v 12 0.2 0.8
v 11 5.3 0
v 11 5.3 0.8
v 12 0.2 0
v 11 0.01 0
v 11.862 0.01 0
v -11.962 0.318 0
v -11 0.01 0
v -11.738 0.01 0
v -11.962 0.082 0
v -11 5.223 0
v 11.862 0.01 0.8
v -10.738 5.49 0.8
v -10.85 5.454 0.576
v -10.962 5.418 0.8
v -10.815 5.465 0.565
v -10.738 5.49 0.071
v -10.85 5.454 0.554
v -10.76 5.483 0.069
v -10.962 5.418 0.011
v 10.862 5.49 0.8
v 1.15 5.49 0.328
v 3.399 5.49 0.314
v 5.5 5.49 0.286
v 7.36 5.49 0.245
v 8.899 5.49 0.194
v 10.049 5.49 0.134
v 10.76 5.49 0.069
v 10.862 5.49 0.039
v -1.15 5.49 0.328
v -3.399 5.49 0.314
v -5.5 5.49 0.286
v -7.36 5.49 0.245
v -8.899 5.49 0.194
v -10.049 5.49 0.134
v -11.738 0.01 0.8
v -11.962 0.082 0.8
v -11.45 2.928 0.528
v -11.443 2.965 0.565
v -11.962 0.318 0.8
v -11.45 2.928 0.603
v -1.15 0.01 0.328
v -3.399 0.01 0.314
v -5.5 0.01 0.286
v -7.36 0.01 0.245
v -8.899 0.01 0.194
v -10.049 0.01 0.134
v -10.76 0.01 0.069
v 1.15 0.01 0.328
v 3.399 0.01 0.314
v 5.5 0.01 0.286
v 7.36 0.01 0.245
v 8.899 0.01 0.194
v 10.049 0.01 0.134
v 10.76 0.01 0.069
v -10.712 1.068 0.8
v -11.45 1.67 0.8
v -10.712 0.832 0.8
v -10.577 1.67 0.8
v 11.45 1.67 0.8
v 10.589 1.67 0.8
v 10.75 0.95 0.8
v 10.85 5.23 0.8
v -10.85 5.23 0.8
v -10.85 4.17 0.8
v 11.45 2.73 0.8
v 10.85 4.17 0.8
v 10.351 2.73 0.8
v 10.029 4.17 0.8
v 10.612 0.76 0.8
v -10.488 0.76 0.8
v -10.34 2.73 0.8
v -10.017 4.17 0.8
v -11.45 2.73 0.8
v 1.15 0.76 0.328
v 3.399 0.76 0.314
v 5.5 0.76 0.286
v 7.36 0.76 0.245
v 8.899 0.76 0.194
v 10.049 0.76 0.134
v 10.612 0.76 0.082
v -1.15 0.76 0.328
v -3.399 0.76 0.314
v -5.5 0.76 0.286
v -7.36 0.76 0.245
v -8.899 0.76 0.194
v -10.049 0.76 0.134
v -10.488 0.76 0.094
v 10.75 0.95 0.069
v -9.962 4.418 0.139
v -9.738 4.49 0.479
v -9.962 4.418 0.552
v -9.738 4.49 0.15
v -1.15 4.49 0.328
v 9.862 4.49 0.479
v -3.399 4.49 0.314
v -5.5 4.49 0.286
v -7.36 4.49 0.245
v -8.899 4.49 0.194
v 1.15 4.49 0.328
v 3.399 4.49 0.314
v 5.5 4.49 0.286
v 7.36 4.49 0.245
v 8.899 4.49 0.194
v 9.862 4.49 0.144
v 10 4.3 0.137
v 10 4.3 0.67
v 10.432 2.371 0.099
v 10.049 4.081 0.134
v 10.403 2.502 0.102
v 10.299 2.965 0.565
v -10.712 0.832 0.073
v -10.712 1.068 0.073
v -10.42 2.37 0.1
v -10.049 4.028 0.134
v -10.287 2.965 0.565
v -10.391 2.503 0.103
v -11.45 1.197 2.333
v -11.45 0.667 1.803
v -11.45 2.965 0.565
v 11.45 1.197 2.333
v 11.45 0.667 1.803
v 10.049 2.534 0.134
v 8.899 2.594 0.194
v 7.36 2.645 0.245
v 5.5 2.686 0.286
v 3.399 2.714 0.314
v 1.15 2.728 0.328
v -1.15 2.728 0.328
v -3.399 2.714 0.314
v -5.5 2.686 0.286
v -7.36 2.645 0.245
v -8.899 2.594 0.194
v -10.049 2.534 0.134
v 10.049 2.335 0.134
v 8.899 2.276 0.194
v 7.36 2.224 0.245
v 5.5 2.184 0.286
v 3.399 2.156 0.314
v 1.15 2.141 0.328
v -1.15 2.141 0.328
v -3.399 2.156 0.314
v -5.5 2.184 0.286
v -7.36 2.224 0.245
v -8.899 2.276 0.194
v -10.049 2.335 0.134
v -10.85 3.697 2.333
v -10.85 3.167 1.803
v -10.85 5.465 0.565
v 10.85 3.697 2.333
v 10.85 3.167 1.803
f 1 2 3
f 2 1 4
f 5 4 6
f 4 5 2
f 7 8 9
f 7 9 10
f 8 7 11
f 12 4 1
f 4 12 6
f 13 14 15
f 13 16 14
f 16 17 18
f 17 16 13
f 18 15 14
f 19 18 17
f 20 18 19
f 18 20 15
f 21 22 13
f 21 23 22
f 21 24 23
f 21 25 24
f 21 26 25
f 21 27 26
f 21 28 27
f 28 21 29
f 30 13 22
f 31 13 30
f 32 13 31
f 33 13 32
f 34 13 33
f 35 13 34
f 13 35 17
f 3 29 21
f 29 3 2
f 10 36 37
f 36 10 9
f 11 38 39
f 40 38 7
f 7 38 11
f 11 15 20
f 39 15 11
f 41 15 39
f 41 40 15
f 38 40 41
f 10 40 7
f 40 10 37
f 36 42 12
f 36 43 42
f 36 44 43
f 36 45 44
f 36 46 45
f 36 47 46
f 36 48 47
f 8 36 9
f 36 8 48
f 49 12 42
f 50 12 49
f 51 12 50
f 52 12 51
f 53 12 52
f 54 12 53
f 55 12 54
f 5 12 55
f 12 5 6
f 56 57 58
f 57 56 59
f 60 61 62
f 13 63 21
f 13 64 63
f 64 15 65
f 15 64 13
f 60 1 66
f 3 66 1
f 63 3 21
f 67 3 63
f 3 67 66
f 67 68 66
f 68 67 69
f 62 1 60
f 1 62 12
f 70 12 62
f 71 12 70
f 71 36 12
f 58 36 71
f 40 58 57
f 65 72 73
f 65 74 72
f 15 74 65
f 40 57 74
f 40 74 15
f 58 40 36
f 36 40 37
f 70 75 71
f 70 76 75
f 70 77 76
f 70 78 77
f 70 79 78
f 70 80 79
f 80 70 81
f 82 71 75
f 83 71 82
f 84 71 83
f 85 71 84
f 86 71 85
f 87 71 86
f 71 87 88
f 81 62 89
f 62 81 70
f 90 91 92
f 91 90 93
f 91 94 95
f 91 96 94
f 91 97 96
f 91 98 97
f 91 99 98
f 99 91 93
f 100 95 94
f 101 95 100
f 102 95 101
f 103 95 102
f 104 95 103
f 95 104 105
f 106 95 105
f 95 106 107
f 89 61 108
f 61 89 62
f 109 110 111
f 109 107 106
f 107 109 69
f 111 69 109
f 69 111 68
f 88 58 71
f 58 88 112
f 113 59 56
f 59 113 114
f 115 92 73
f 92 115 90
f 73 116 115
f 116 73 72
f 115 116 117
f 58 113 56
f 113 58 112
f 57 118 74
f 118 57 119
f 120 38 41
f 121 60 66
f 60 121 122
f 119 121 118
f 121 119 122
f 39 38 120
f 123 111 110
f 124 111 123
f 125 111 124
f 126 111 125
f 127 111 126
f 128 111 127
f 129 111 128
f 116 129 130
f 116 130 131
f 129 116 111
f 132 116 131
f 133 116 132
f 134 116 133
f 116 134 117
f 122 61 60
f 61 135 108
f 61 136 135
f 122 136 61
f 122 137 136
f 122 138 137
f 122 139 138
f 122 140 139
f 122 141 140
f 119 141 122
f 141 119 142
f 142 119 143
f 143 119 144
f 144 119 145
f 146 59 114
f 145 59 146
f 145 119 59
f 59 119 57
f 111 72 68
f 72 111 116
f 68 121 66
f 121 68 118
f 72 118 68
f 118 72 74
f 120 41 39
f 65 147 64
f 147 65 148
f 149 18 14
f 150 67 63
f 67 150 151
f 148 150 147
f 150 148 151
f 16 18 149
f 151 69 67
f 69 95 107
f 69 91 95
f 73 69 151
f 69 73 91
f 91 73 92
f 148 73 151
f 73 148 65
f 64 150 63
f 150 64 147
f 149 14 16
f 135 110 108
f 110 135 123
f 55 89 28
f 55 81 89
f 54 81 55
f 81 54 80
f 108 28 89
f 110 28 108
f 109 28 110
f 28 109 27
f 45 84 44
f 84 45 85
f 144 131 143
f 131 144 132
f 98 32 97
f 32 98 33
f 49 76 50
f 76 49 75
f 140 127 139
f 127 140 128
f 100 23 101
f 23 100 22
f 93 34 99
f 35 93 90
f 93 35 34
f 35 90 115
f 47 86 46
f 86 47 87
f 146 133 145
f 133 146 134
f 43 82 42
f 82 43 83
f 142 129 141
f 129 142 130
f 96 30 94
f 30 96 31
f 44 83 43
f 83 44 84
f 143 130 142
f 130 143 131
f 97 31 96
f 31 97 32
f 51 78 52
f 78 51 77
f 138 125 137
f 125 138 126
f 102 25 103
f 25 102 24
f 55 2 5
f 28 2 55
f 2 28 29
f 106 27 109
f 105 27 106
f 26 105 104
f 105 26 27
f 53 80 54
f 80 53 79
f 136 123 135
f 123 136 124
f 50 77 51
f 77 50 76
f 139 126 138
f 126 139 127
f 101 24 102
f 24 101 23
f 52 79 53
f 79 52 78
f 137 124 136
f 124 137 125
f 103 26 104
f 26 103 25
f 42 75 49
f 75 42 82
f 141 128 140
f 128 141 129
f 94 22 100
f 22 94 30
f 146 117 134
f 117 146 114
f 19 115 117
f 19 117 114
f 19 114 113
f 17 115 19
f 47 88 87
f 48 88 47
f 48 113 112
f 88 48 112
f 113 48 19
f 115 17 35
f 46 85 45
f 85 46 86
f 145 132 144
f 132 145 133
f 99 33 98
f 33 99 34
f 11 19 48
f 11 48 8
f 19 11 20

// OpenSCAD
rad = 0.2;
pt1 = [-12+rad,0+rad,0];
pt2 = [-11+rad,5.5-rad,0];
pt3 = [11-rad,5.5-rad,0];
pt4 = [12-rad,0+rad,0];

ipt1 = [-12+rad+1.25,0+rad+0.75,-0.1];
ipt2 = [-11+rad+1,5.5-rad-1,-0.1];
ipt3 = [11-rad-1,5.5-rad-1,-0.1];
ipt4 = [12-rad-1.25,0+rad+0.75,-0.1];

difference() {
   flatForm();
   scale([1,1,.03]) translate([0,-0.2,0]) rotate([-90,0,0]) cylinder($fn=30,r=11,h=6);
}


module flatForm() {
   difference() {
      hull() {
         translate(pt1) cylinder(r=rad,h=0.8);
         translate(pt2) cylinder(r=rad,h=0.8);
         translate(pt3) cylinder(r=rad,h=0.8);
         translate(pt4) cylinder(r=rad,h=0.8);
      }
   
      hull() {
         translate(ipt1) cylinder(r=rad,h=1.7);
         translate(ipt2) cylinder(r=rad,h=1.7);
         translate(ipt3) cylinder(r=rad,h=1.7);
         translate(ipt4) cylinder(r=rad,h=1.7);
      }
   }
   
   translate([0,0,0.3]) difference() {
      union() {
         translate([0,2.7,0]) rotate([45,0,0]) translate([0,0,1.25]) cube([22.9,0.75,2.5],center=true);
         translate([0,5.2,0]) rotate([45,0,0]) translate([0,0,1.25]) cube([21.7,0.75,2.5],center=true);
      }
   //   translate([0,0,-1.5]) cube([40,40,3],center=true);
   }
}
